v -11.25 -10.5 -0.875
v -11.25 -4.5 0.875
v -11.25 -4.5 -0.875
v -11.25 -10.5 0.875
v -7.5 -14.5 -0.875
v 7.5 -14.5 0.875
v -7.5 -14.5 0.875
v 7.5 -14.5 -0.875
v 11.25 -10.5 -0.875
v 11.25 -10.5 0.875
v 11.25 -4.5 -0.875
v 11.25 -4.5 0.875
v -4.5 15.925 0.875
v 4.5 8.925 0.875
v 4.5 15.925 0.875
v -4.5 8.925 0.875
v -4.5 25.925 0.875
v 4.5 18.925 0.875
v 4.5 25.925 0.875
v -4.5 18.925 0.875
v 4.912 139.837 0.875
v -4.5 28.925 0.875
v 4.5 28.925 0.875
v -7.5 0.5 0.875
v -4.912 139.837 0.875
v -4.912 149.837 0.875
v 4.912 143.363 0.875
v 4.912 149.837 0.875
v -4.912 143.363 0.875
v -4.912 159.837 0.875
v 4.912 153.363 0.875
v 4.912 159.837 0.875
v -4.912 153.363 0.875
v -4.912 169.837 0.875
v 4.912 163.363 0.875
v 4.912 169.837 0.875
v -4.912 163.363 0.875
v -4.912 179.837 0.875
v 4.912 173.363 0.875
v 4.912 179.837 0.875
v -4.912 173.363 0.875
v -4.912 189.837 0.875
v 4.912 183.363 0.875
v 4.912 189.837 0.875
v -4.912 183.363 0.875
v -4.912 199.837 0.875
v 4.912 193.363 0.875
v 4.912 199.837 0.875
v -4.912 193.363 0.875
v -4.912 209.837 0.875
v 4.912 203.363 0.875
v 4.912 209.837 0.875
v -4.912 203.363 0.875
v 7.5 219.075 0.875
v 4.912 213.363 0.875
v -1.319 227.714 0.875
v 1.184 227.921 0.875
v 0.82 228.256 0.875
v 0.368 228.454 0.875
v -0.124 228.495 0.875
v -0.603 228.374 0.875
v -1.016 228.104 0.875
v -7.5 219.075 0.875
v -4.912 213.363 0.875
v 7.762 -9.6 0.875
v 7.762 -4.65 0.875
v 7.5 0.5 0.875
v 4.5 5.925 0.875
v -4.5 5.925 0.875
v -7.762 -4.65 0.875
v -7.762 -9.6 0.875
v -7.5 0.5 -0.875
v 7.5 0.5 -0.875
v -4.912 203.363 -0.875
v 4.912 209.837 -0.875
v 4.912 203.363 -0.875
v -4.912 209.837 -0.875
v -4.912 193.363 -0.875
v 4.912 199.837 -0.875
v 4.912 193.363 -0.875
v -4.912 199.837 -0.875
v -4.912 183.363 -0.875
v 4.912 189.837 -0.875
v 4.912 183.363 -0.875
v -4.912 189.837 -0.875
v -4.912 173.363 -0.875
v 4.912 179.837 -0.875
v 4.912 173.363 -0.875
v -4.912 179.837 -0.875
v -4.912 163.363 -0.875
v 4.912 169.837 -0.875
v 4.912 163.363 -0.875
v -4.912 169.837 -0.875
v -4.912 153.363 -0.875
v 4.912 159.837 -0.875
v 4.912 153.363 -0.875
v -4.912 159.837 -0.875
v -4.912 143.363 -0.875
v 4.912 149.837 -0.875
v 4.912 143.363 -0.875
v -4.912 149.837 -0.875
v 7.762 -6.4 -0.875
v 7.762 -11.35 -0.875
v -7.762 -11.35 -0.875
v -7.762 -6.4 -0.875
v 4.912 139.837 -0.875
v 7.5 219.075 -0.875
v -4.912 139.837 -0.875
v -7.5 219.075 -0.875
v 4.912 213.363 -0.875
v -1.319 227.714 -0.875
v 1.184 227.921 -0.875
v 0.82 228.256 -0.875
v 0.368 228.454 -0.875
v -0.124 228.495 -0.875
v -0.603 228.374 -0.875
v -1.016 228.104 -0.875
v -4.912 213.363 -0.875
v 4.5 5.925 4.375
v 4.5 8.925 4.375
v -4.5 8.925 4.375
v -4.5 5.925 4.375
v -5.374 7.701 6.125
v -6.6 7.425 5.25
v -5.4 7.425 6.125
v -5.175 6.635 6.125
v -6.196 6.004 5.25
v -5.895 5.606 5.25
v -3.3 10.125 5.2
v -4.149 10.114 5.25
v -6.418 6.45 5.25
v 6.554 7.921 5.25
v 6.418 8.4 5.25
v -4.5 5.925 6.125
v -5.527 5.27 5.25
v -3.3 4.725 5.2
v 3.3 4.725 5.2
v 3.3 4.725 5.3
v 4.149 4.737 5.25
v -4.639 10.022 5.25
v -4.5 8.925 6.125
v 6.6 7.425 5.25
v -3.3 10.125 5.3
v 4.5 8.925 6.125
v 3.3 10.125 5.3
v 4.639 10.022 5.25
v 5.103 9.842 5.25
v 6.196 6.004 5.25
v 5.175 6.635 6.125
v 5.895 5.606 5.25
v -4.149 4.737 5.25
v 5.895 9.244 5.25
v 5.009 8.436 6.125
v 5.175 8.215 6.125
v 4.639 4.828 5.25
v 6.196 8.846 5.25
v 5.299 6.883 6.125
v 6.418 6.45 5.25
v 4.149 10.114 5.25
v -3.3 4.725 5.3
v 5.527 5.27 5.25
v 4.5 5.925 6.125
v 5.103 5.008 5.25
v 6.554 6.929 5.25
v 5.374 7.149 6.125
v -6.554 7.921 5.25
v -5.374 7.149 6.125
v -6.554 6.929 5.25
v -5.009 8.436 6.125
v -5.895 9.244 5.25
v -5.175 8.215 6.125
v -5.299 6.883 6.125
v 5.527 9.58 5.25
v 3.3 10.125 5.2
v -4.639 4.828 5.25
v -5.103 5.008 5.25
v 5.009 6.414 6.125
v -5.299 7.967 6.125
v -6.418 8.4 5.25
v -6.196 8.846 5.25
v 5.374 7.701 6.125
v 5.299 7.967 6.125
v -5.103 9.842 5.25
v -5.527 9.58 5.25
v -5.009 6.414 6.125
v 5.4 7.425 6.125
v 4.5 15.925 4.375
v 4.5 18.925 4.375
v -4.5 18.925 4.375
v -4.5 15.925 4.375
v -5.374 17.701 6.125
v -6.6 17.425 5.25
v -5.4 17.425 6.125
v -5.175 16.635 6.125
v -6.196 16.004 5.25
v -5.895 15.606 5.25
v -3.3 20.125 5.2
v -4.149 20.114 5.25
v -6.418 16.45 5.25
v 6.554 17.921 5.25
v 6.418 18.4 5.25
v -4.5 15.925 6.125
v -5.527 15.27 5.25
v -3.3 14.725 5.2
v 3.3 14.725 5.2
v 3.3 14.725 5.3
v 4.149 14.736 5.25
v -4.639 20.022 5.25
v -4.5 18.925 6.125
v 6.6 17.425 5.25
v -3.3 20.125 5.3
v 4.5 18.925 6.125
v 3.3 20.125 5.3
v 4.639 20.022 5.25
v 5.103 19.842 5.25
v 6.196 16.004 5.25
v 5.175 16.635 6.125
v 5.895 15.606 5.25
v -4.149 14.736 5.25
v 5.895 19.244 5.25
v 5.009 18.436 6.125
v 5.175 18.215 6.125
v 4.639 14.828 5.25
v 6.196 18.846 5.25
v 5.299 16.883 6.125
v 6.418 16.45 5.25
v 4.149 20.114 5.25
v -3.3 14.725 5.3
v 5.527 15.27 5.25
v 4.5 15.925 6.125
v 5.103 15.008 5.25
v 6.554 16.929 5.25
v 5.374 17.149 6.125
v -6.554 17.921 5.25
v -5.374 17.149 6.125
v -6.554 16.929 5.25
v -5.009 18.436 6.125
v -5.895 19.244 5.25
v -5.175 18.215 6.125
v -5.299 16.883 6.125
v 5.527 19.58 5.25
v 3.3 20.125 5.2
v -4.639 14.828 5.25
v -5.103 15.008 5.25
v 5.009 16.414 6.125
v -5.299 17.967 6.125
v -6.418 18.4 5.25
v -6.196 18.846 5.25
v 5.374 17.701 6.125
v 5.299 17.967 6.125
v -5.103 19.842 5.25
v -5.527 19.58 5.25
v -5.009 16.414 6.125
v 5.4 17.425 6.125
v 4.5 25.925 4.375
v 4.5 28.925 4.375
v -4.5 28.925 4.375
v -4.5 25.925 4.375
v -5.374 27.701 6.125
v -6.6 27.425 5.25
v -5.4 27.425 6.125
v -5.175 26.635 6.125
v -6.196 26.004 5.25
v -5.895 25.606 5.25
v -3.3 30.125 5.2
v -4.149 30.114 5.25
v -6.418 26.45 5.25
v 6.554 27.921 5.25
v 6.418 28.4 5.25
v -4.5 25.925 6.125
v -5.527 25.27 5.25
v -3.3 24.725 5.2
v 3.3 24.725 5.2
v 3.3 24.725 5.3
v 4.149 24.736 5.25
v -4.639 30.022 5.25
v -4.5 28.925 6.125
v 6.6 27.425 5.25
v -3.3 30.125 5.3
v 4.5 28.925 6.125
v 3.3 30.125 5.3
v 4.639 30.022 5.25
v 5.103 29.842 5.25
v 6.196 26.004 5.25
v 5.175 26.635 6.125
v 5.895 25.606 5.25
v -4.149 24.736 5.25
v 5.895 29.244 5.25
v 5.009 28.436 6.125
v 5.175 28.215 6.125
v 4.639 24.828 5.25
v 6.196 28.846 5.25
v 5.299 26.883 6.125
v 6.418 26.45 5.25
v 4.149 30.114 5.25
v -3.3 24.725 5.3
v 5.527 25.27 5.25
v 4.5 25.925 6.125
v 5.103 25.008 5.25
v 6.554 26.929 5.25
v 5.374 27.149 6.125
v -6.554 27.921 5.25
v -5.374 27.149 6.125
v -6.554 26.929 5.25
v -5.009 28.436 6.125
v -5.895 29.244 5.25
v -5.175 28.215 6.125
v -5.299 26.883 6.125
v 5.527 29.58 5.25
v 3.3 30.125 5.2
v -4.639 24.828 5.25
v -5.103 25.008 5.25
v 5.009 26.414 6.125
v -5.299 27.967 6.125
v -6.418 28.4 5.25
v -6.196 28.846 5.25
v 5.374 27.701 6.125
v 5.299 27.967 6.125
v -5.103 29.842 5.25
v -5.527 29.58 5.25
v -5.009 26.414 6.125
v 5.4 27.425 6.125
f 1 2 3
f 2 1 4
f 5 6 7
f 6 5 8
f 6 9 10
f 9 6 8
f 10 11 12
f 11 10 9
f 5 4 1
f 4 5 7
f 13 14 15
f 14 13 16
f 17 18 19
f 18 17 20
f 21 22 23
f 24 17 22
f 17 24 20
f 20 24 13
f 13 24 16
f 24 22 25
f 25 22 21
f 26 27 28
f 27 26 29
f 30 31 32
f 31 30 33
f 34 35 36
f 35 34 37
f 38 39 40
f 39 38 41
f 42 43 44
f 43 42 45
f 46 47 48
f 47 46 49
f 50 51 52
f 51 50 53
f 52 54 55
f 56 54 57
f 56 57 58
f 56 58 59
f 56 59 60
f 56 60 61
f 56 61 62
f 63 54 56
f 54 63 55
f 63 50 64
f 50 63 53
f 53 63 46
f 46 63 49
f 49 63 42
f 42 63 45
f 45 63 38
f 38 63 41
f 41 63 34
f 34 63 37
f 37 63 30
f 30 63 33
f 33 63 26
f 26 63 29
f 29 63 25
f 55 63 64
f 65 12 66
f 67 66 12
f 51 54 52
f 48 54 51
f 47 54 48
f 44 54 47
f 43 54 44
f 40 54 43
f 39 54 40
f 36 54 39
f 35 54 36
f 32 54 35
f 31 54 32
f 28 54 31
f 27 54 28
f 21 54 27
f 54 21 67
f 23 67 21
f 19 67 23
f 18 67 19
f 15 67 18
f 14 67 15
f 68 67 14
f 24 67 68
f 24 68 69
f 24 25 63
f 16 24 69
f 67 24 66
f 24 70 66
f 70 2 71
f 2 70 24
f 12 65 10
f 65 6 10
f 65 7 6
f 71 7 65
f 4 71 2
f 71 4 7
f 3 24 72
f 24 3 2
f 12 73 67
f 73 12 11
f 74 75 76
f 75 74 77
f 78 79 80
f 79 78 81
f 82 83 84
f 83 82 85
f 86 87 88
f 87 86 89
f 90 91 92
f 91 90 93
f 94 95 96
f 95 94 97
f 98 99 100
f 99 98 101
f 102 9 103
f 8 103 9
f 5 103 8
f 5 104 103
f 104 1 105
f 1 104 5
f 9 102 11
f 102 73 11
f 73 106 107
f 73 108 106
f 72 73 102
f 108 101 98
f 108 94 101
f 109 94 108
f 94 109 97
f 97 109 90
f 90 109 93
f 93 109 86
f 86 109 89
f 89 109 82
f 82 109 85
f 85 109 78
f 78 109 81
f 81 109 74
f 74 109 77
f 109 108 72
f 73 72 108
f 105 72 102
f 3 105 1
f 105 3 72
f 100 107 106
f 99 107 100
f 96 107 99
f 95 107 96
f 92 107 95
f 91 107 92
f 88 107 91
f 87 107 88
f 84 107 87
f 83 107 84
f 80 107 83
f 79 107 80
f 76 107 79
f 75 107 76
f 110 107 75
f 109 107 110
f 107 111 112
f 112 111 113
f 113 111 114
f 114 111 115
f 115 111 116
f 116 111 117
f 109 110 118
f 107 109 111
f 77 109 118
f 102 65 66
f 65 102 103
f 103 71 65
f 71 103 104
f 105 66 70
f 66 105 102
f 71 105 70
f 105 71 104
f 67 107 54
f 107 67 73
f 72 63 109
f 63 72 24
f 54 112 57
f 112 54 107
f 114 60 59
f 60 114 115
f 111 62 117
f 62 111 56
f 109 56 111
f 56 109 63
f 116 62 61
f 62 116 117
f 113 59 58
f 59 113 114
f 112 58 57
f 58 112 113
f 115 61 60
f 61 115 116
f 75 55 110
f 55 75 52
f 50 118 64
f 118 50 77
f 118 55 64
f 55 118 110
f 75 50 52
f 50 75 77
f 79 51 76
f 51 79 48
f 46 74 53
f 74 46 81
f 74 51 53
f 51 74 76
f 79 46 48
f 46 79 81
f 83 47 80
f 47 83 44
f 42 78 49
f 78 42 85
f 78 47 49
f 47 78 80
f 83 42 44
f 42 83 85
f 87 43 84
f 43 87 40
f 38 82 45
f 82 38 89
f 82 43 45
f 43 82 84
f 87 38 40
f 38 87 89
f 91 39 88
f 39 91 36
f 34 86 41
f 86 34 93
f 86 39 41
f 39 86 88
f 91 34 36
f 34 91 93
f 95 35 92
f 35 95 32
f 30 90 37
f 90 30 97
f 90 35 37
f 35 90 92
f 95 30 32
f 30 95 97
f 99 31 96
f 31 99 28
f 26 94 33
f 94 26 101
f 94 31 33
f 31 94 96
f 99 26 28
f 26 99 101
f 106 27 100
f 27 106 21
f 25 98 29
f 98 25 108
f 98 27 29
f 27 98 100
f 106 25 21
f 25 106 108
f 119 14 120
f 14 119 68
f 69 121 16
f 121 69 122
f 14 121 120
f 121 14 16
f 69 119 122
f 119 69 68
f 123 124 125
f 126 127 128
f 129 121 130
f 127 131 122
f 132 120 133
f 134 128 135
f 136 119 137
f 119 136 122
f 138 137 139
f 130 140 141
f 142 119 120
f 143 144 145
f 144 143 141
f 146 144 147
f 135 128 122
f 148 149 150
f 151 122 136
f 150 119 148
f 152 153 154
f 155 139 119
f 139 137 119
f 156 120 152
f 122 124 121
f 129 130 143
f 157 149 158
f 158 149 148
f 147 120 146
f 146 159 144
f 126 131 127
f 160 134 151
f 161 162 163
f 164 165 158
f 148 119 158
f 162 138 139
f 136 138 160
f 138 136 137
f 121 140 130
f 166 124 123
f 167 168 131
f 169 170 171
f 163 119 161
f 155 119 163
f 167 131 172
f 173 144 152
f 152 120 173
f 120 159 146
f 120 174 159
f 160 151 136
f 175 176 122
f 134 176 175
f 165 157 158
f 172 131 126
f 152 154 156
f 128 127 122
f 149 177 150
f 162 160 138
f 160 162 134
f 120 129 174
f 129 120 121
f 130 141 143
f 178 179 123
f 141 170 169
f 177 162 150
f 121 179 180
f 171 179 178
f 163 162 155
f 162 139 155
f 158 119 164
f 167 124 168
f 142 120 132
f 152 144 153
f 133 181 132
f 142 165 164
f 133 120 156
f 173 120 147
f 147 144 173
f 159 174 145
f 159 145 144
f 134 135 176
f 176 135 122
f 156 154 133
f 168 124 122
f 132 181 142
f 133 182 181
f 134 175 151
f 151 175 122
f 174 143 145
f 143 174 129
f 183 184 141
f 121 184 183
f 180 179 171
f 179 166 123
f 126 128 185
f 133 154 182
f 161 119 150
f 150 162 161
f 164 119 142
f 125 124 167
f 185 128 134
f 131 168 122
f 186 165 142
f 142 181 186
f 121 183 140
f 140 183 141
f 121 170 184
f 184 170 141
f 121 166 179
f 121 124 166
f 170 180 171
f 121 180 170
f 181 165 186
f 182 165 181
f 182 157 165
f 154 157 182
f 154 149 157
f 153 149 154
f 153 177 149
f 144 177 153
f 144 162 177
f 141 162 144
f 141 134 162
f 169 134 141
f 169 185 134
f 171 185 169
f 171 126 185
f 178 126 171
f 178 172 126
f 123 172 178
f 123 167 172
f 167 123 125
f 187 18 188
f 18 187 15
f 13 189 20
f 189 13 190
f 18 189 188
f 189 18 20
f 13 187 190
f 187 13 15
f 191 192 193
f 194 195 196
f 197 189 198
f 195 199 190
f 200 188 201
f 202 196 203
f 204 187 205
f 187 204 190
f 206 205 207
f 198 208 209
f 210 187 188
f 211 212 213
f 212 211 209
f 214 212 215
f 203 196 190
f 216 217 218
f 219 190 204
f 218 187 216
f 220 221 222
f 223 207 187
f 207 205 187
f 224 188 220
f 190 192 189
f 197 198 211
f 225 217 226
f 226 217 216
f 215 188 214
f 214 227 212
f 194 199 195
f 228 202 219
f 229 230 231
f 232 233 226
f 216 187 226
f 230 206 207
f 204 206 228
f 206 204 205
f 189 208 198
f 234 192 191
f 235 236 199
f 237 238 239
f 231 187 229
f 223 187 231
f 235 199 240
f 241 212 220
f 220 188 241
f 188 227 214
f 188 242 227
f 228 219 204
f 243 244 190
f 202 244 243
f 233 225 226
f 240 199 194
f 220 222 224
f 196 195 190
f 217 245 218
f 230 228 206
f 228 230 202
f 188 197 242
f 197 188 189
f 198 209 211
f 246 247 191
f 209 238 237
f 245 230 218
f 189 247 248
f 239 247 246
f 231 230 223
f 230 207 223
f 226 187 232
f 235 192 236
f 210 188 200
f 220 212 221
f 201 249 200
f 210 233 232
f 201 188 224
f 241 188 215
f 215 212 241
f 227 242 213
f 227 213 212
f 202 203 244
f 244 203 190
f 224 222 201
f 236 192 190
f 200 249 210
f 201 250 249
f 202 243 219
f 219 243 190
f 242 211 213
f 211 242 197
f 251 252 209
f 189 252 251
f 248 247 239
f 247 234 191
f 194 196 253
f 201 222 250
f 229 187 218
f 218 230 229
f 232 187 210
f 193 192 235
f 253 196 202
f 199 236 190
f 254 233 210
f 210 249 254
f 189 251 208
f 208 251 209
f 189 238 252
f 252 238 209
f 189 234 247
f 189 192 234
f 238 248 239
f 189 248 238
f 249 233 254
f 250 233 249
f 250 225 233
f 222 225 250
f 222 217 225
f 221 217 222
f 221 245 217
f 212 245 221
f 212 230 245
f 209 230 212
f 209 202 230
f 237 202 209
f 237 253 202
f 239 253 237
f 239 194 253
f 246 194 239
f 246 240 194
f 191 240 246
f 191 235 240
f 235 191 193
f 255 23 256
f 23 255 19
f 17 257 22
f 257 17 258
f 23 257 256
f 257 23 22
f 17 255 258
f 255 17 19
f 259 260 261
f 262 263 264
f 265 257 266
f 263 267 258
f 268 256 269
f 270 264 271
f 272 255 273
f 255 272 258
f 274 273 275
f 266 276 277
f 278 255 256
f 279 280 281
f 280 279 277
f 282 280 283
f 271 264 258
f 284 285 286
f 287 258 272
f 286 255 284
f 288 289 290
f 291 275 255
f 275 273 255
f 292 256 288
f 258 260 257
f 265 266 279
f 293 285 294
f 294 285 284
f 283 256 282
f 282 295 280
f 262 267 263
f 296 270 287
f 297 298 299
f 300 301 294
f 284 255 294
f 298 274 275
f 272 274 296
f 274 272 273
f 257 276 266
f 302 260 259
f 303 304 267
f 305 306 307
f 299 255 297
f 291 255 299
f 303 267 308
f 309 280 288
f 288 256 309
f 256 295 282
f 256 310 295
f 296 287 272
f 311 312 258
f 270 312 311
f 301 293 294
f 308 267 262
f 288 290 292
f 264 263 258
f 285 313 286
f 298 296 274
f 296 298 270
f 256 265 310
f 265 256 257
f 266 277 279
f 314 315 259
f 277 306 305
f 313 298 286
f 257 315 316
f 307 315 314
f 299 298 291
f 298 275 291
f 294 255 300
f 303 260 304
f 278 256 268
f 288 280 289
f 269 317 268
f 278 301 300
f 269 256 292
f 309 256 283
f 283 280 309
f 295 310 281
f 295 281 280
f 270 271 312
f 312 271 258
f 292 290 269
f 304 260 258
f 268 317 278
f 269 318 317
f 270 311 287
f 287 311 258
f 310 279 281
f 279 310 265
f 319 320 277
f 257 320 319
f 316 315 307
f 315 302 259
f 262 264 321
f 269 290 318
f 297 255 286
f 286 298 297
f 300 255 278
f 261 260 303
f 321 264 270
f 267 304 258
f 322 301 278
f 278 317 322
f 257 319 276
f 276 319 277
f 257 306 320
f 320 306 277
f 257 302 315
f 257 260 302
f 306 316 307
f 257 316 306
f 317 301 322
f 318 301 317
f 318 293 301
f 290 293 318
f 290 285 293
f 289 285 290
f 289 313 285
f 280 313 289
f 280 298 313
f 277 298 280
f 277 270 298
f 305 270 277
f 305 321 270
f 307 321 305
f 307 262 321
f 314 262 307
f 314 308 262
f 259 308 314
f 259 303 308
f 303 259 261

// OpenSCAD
// file: lipo_strap.scad
button_width = strap_width * 0.6;
button_thickness = button_width / 3;
button_leg_height = strap_thickness * 2;
button_head_height = strap_thickness;
button_head_length = strap_width;
button_head_offset = 1.2;
button_space = 10;
buttons = 3;
button_holes = 8;


$fs = $preview ? 1 : 0.5;
$fa = $preview ? 10 : 5;

anti_warp = .15;
filament_width = 1.75;

function anti_warp_widen(v) = v + (filament_width * anti_warp) * 2;
function anti_warp_shrink(v) = v - (filament_width * anti_warp) * 2;

module tail() {
}

module button_head() {
	hull() {
		cube([button_width, button_thickness, button_head_height], center = true);
		cube([button_width - button_head_offset * 2, button_thickness + 2 * button_head_offset, 0.1], center = true);
		translate([button_width / 2 - button_head_offset / 2, 0]) cylinder(h = button_head_height / 2, d1 = button_thickness + 2 * button_head_offset, d2 = button_thickness);
		translate([-button_width / 2 + button_head_offset / 2, 0]) cylinder(h = button_head_height / 2, d1 = button_thickness + 2 * button_head_offset, d2 = button_thickness);
	}
}

module button_leg() {
	cube([button_width, button_thickness, button_leg_height], center = true);
}

module button() {
	translate([0, 0, button_leg_height / 2]) {
		button_leg();
		translate([0, 0, button_leg_height / 2 + button_head_height / 2]) button_head();
	}
}

module button_hole() {
	cube([anti_warp_widen(button_width + button_head_offset * 0.25), anti_warp_widen(button_thickness), strap_thickness], center = true);
}

module generate_buttons(count) {
	assert(count != undef);
	for (i = [0:count-1]) {
		translate([0, anti_warp_widen(button_space * i), 0]) button();
	}
}

module generate_button_holes(count) {
	assert(count != undef);
	for (i = [0:count-1]) {
		translate([0, -button_space * i]) button_hole();
	}
}

module tailtip(length) {
	hull() {
		cube([strap_width, length * 0.1, strap_thickness], center = true);
		translate([0, length - (strap_width / 5)]) cylinder(h = strap_thickness, d = strap_width / 5, center = true);
	}
}

module tail() {
	difference() {
		union() {
			translate([0, strap_length * 0.95 / 2]) cube([strap_width, strap_length * 0.95, strap_thickness], center = true);
			translate([0, strap_length * 0.95]) tailtip(strap_length * 0.05);
		}
		translate([0, strap_length * 0.92]) generate_button_holes(button_holes);
	}
	translate([0, strap_length * 0.03, strap_thickness / 2]) generate_buttons(buttons);
}

module strap_hole() {
	cube([anti_warp_widen(strap_width), strap_thickness * 2, button_head_length], center = true);
}

module head() {
	difference() {
		hull() {
			cube([strap_width, 1, strap_thickness], center = true);
			translate([0, strap_width * 1/3]) cube([strap_width * 1.5, 1, strap_thickness], center = true);
			translate([0, strap_width * 2/3]) cube([strap_width * 1.5, 1, strap_thickness], center = true);
			translate([0, button_head_length - 1]) cube([strap_width, 1, strap_thickness], center = true);
		}
		translate([0, button_head_length / 2 + 0.5]) rotate([45, 0]) strap_hole();
	}
}

module main() {
	rotate([0, 0, 180]) head();
	tail();
}

main();
// main file
strap_length = 230; // 23cm 
strap_width = 15; // 1.5cm
strap_thickness = 1.75;

include <lipo_strap.scad>
